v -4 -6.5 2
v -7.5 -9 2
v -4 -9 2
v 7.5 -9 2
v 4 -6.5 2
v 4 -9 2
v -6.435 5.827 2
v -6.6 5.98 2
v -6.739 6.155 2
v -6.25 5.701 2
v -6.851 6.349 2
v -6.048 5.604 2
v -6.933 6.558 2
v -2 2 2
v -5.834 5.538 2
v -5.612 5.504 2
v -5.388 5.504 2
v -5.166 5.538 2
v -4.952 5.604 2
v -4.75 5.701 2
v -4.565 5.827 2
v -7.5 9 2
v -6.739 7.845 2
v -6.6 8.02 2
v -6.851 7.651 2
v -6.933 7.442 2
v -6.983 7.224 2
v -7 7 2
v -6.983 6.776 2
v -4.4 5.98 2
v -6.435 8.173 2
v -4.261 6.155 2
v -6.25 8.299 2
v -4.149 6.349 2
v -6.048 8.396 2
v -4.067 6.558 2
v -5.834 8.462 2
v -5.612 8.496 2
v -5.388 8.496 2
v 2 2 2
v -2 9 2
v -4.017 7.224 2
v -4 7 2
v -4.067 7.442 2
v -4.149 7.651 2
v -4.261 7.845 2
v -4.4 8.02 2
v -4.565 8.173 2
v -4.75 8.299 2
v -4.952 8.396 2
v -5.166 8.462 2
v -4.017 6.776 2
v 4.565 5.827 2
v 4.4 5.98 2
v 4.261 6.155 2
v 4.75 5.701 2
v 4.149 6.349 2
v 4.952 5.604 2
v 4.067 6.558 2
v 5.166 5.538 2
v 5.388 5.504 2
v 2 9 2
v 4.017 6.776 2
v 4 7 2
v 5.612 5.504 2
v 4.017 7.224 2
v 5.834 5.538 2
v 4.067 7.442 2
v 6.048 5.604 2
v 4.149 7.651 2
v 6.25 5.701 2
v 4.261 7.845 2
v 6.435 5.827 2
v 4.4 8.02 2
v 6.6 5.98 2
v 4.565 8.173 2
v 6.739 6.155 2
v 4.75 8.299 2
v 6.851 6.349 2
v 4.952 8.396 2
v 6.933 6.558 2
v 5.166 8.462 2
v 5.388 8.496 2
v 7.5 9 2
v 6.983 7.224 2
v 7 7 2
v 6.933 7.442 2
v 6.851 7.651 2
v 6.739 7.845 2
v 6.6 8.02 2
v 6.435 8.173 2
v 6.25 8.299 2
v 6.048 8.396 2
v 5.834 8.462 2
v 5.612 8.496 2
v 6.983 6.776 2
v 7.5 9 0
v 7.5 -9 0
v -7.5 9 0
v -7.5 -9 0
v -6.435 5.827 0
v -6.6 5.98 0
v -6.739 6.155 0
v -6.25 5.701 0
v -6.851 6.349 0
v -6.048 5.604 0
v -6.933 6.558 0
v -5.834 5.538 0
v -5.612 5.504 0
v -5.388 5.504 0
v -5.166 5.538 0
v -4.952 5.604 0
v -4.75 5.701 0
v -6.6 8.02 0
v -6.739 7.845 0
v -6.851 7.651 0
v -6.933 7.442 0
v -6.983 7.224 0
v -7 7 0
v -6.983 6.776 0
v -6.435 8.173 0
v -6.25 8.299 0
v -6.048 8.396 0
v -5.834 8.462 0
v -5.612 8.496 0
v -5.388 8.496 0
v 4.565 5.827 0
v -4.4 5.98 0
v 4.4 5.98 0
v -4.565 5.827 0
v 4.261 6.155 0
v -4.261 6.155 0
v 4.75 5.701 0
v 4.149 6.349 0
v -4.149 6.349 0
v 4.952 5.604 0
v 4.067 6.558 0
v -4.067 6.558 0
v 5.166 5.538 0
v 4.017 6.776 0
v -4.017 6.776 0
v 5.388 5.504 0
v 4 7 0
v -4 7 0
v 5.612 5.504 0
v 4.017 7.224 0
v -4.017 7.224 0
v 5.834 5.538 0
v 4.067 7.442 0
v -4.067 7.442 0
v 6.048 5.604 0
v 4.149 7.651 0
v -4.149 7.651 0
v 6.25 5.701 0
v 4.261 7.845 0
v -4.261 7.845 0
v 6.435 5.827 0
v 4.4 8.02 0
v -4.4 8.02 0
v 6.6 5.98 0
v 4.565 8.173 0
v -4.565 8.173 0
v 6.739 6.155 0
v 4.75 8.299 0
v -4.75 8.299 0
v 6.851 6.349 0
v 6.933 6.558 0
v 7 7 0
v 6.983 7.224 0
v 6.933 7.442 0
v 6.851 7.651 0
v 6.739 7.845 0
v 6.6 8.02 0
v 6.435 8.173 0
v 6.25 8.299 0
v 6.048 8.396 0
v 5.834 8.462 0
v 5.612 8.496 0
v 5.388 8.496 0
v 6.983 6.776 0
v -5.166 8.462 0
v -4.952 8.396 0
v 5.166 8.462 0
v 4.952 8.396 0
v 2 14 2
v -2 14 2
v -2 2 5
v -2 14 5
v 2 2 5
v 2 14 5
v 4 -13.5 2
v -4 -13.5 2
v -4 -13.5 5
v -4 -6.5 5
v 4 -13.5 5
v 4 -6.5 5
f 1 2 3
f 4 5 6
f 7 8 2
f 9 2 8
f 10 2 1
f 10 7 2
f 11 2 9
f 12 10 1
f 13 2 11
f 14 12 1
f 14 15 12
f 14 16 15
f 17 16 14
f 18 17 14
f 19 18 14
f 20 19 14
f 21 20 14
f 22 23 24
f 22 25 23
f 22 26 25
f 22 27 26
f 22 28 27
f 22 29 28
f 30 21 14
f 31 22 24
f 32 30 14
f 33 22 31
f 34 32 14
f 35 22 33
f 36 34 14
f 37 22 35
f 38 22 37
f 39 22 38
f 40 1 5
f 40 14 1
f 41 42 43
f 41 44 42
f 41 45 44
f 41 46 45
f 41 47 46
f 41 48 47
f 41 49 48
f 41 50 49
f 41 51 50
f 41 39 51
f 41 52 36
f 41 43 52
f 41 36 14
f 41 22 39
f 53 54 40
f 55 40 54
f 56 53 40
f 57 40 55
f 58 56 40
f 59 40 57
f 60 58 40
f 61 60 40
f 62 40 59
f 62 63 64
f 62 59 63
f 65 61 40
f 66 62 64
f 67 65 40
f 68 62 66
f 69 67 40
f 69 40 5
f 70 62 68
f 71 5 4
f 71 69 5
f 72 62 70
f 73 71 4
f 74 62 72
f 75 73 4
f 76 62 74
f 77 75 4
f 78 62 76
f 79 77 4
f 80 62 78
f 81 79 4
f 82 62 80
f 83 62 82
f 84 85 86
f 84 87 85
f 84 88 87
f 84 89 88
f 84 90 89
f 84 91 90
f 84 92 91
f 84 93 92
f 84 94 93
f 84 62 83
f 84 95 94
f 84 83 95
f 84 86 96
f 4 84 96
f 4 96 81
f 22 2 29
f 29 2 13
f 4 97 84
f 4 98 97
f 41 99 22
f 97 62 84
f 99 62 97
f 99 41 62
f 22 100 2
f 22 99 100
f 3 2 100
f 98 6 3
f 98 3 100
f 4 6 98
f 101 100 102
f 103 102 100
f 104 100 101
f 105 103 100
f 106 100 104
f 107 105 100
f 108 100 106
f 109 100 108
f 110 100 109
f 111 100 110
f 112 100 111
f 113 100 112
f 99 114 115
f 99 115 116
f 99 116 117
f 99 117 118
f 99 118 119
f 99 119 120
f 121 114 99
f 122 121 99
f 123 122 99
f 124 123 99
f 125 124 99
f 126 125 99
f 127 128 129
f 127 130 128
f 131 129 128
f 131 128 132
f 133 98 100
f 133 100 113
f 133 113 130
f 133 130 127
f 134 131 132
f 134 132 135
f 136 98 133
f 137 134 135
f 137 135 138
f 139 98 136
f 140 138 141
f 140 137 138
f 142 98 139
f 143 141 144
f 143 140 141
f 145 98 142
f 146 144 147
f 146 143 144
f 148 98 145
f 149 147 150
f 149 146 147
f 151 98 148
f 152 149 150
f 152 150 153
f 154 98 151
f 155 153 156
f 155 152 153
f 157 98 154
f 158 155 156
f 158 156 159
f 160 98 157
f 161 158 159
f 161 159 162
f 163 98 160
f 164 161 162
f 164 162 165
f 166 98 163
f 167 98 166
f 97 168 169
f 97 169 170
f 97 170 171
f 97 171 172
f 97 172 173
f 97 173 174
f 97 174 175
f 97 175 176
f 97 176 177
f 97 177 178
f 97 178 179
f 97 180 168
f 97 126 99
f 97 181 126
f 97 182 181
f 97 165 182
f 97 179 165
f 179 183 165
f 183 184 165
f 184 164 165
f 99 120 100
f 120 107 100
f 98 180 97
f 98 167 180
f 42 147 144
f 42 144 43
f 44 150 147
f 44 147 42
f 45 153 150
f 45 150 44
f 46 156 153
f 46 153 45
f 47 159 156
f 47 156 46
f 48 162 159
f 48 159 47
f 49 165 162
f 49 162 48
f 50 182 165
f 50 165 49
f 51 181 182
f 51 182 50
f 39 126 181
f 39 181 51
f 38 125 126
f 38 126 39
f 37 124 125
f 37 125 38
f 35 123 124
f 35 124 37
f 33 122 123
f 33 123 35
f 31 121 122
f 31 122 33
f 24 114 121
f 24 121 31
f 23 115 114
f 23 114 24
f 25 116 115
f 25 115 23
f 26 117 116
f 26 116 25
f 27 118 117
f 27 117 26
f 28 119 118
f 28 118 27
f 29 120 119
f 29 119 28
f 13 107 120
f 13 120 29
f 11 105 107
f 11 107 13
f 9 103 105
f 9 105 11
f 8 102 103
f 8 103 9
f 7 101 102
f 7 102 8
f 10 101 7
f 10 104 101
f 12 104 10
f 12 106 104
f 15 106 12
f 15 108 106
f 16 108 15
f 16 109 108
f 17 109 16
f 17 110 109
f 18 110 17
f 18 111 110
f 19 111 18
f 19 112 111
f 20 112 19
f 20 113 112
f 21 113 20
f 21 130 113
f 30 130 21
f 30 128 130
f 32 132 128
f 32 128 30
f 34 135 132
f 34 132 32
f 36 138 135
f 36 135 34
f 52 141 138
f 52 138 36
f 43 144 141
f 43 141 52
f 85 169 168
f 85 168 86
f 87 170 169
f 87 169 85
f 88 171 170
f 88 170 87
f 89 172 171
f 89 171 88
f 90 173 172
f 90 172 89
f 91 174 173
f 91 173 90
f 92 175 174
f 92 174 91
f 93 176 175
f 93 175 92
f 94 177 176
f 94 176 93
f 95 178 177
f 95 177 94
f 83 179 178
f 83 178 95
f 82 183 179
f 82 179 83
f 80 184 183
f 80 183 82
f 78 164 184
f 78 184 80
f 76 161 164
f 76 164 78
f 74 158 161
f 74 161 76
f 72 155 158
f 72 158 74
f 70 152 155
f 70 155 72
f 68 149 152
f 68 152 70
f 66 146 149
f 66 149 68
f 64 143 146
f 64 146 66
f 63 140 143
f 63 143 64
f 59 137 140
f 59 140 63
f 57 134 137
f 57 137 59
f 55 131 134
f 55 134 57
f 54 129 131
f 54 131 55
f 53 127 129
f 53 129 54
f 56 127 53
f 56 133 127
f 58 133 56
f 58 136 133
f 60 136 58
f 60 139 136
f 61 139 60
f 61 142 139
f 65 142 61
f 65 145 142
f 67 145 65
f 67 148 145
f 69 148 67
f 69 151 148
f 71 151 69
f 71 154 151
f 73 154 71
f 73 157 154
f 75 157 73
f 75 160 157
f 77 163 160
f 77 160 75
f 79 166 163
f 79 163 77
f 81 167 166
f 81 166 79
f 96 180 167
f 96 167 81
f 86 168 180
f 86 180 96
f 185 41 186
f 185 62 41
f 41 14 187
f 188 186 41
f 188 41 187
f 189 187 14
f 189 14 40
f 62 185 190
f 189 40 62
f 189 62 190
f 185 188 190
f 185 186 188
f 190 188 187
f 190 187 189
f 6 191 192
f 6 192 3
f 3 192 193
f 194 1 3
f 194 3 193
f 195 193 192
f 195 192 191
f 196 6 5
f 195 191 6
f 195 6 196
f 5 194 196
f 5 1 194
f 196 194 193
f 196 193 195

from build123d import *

# Parameters (mm, degrees)
CROQUIS1_W              = 15
CROQUIS1_H              = 18
SALIENTE_EXTRUIR1_DEPTH = 2
CROQUIS2_R              = 1.5
CORTAR_EXTRUIR1_DEPTH   = 12.884864324
CROQUIS3_W              = 4
CROQUIS3_H              = 12
SALIENTE_EXTRUIR2_DEPTH = 3
CROQUIS4_W              = 8
CROQUIS4_H              = 7
SALIENTE_EXTRUIR3_DEPTH = 3


with BuildPart() as part:
    # Croquis1 → Saliente-Extruir1 (new body)
    with BuildSketch(Plane.XY):
        Rectangle(CROQUIS1_W, CROQUIS1_H)
    extrude(amount=SALIENTE_EXTRUIR1_DEPTH)

    # Croquis2 → Cortar-Extruir1 (cut, through all)
    with BuildSketch(Plane.XY.offset(2)):
        with Locations((-5.5, 7)):
            Circle(CROQUIS2_R)
        with Locations((5.5, 7)):
            Circle(CROQUIS2_R)
    extrude(amount=-CORTAR_EXTRUIR1_DEPTH, mode=Mode.SUBTRACT)

    # Croquis3 → Saliente-Extruir2 (add)
    with BuildSketch(Plane.XY.offset(2)):
        with Locations((0, 8)):
            Rectangle(CROQUIS3_W, CROQUIS3_H)
    extrude(amount=SALIENTE_EXTRUIR2_DEPTH)

    # Croquis4 → Saliente-Extruir3 (add)
    with BuildSketch(Plane.XY.offset(2)):
        with Locations((0, -10)):
            Rectangle(CROQUIS4_W, CROQUIS4_H)
    extrude(amount=SALIENTE_EXTRUIR3_DEPTH)


solid = part.part
